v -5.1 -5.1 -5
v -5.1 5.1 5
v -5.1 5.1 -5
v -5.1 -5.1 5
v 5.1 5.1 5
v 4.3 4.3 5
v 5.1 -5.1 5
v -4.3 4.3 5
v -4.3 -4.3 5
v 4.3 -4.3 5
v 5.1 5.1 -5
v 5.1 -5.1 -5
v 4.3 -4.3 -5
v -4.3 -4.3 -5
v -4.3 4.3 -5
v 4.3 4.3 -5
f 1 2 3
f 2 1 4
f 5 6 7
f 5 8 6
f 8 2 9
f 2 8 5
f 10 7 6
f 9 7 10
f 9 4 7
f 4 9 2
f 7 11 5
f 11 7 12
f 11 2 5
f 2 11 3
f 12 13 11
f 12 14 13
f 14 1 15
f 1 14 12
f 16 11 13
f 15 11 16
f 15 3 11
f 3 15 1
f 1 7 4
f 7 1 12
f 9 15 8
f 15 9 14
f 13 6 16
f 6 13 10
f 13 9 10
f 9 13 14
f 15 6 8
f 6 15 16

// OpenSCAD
difference() {
    cube([10.2, 10.2, 10], center = true);
    cube([8.6, 8.6, 10], center = true);
}
